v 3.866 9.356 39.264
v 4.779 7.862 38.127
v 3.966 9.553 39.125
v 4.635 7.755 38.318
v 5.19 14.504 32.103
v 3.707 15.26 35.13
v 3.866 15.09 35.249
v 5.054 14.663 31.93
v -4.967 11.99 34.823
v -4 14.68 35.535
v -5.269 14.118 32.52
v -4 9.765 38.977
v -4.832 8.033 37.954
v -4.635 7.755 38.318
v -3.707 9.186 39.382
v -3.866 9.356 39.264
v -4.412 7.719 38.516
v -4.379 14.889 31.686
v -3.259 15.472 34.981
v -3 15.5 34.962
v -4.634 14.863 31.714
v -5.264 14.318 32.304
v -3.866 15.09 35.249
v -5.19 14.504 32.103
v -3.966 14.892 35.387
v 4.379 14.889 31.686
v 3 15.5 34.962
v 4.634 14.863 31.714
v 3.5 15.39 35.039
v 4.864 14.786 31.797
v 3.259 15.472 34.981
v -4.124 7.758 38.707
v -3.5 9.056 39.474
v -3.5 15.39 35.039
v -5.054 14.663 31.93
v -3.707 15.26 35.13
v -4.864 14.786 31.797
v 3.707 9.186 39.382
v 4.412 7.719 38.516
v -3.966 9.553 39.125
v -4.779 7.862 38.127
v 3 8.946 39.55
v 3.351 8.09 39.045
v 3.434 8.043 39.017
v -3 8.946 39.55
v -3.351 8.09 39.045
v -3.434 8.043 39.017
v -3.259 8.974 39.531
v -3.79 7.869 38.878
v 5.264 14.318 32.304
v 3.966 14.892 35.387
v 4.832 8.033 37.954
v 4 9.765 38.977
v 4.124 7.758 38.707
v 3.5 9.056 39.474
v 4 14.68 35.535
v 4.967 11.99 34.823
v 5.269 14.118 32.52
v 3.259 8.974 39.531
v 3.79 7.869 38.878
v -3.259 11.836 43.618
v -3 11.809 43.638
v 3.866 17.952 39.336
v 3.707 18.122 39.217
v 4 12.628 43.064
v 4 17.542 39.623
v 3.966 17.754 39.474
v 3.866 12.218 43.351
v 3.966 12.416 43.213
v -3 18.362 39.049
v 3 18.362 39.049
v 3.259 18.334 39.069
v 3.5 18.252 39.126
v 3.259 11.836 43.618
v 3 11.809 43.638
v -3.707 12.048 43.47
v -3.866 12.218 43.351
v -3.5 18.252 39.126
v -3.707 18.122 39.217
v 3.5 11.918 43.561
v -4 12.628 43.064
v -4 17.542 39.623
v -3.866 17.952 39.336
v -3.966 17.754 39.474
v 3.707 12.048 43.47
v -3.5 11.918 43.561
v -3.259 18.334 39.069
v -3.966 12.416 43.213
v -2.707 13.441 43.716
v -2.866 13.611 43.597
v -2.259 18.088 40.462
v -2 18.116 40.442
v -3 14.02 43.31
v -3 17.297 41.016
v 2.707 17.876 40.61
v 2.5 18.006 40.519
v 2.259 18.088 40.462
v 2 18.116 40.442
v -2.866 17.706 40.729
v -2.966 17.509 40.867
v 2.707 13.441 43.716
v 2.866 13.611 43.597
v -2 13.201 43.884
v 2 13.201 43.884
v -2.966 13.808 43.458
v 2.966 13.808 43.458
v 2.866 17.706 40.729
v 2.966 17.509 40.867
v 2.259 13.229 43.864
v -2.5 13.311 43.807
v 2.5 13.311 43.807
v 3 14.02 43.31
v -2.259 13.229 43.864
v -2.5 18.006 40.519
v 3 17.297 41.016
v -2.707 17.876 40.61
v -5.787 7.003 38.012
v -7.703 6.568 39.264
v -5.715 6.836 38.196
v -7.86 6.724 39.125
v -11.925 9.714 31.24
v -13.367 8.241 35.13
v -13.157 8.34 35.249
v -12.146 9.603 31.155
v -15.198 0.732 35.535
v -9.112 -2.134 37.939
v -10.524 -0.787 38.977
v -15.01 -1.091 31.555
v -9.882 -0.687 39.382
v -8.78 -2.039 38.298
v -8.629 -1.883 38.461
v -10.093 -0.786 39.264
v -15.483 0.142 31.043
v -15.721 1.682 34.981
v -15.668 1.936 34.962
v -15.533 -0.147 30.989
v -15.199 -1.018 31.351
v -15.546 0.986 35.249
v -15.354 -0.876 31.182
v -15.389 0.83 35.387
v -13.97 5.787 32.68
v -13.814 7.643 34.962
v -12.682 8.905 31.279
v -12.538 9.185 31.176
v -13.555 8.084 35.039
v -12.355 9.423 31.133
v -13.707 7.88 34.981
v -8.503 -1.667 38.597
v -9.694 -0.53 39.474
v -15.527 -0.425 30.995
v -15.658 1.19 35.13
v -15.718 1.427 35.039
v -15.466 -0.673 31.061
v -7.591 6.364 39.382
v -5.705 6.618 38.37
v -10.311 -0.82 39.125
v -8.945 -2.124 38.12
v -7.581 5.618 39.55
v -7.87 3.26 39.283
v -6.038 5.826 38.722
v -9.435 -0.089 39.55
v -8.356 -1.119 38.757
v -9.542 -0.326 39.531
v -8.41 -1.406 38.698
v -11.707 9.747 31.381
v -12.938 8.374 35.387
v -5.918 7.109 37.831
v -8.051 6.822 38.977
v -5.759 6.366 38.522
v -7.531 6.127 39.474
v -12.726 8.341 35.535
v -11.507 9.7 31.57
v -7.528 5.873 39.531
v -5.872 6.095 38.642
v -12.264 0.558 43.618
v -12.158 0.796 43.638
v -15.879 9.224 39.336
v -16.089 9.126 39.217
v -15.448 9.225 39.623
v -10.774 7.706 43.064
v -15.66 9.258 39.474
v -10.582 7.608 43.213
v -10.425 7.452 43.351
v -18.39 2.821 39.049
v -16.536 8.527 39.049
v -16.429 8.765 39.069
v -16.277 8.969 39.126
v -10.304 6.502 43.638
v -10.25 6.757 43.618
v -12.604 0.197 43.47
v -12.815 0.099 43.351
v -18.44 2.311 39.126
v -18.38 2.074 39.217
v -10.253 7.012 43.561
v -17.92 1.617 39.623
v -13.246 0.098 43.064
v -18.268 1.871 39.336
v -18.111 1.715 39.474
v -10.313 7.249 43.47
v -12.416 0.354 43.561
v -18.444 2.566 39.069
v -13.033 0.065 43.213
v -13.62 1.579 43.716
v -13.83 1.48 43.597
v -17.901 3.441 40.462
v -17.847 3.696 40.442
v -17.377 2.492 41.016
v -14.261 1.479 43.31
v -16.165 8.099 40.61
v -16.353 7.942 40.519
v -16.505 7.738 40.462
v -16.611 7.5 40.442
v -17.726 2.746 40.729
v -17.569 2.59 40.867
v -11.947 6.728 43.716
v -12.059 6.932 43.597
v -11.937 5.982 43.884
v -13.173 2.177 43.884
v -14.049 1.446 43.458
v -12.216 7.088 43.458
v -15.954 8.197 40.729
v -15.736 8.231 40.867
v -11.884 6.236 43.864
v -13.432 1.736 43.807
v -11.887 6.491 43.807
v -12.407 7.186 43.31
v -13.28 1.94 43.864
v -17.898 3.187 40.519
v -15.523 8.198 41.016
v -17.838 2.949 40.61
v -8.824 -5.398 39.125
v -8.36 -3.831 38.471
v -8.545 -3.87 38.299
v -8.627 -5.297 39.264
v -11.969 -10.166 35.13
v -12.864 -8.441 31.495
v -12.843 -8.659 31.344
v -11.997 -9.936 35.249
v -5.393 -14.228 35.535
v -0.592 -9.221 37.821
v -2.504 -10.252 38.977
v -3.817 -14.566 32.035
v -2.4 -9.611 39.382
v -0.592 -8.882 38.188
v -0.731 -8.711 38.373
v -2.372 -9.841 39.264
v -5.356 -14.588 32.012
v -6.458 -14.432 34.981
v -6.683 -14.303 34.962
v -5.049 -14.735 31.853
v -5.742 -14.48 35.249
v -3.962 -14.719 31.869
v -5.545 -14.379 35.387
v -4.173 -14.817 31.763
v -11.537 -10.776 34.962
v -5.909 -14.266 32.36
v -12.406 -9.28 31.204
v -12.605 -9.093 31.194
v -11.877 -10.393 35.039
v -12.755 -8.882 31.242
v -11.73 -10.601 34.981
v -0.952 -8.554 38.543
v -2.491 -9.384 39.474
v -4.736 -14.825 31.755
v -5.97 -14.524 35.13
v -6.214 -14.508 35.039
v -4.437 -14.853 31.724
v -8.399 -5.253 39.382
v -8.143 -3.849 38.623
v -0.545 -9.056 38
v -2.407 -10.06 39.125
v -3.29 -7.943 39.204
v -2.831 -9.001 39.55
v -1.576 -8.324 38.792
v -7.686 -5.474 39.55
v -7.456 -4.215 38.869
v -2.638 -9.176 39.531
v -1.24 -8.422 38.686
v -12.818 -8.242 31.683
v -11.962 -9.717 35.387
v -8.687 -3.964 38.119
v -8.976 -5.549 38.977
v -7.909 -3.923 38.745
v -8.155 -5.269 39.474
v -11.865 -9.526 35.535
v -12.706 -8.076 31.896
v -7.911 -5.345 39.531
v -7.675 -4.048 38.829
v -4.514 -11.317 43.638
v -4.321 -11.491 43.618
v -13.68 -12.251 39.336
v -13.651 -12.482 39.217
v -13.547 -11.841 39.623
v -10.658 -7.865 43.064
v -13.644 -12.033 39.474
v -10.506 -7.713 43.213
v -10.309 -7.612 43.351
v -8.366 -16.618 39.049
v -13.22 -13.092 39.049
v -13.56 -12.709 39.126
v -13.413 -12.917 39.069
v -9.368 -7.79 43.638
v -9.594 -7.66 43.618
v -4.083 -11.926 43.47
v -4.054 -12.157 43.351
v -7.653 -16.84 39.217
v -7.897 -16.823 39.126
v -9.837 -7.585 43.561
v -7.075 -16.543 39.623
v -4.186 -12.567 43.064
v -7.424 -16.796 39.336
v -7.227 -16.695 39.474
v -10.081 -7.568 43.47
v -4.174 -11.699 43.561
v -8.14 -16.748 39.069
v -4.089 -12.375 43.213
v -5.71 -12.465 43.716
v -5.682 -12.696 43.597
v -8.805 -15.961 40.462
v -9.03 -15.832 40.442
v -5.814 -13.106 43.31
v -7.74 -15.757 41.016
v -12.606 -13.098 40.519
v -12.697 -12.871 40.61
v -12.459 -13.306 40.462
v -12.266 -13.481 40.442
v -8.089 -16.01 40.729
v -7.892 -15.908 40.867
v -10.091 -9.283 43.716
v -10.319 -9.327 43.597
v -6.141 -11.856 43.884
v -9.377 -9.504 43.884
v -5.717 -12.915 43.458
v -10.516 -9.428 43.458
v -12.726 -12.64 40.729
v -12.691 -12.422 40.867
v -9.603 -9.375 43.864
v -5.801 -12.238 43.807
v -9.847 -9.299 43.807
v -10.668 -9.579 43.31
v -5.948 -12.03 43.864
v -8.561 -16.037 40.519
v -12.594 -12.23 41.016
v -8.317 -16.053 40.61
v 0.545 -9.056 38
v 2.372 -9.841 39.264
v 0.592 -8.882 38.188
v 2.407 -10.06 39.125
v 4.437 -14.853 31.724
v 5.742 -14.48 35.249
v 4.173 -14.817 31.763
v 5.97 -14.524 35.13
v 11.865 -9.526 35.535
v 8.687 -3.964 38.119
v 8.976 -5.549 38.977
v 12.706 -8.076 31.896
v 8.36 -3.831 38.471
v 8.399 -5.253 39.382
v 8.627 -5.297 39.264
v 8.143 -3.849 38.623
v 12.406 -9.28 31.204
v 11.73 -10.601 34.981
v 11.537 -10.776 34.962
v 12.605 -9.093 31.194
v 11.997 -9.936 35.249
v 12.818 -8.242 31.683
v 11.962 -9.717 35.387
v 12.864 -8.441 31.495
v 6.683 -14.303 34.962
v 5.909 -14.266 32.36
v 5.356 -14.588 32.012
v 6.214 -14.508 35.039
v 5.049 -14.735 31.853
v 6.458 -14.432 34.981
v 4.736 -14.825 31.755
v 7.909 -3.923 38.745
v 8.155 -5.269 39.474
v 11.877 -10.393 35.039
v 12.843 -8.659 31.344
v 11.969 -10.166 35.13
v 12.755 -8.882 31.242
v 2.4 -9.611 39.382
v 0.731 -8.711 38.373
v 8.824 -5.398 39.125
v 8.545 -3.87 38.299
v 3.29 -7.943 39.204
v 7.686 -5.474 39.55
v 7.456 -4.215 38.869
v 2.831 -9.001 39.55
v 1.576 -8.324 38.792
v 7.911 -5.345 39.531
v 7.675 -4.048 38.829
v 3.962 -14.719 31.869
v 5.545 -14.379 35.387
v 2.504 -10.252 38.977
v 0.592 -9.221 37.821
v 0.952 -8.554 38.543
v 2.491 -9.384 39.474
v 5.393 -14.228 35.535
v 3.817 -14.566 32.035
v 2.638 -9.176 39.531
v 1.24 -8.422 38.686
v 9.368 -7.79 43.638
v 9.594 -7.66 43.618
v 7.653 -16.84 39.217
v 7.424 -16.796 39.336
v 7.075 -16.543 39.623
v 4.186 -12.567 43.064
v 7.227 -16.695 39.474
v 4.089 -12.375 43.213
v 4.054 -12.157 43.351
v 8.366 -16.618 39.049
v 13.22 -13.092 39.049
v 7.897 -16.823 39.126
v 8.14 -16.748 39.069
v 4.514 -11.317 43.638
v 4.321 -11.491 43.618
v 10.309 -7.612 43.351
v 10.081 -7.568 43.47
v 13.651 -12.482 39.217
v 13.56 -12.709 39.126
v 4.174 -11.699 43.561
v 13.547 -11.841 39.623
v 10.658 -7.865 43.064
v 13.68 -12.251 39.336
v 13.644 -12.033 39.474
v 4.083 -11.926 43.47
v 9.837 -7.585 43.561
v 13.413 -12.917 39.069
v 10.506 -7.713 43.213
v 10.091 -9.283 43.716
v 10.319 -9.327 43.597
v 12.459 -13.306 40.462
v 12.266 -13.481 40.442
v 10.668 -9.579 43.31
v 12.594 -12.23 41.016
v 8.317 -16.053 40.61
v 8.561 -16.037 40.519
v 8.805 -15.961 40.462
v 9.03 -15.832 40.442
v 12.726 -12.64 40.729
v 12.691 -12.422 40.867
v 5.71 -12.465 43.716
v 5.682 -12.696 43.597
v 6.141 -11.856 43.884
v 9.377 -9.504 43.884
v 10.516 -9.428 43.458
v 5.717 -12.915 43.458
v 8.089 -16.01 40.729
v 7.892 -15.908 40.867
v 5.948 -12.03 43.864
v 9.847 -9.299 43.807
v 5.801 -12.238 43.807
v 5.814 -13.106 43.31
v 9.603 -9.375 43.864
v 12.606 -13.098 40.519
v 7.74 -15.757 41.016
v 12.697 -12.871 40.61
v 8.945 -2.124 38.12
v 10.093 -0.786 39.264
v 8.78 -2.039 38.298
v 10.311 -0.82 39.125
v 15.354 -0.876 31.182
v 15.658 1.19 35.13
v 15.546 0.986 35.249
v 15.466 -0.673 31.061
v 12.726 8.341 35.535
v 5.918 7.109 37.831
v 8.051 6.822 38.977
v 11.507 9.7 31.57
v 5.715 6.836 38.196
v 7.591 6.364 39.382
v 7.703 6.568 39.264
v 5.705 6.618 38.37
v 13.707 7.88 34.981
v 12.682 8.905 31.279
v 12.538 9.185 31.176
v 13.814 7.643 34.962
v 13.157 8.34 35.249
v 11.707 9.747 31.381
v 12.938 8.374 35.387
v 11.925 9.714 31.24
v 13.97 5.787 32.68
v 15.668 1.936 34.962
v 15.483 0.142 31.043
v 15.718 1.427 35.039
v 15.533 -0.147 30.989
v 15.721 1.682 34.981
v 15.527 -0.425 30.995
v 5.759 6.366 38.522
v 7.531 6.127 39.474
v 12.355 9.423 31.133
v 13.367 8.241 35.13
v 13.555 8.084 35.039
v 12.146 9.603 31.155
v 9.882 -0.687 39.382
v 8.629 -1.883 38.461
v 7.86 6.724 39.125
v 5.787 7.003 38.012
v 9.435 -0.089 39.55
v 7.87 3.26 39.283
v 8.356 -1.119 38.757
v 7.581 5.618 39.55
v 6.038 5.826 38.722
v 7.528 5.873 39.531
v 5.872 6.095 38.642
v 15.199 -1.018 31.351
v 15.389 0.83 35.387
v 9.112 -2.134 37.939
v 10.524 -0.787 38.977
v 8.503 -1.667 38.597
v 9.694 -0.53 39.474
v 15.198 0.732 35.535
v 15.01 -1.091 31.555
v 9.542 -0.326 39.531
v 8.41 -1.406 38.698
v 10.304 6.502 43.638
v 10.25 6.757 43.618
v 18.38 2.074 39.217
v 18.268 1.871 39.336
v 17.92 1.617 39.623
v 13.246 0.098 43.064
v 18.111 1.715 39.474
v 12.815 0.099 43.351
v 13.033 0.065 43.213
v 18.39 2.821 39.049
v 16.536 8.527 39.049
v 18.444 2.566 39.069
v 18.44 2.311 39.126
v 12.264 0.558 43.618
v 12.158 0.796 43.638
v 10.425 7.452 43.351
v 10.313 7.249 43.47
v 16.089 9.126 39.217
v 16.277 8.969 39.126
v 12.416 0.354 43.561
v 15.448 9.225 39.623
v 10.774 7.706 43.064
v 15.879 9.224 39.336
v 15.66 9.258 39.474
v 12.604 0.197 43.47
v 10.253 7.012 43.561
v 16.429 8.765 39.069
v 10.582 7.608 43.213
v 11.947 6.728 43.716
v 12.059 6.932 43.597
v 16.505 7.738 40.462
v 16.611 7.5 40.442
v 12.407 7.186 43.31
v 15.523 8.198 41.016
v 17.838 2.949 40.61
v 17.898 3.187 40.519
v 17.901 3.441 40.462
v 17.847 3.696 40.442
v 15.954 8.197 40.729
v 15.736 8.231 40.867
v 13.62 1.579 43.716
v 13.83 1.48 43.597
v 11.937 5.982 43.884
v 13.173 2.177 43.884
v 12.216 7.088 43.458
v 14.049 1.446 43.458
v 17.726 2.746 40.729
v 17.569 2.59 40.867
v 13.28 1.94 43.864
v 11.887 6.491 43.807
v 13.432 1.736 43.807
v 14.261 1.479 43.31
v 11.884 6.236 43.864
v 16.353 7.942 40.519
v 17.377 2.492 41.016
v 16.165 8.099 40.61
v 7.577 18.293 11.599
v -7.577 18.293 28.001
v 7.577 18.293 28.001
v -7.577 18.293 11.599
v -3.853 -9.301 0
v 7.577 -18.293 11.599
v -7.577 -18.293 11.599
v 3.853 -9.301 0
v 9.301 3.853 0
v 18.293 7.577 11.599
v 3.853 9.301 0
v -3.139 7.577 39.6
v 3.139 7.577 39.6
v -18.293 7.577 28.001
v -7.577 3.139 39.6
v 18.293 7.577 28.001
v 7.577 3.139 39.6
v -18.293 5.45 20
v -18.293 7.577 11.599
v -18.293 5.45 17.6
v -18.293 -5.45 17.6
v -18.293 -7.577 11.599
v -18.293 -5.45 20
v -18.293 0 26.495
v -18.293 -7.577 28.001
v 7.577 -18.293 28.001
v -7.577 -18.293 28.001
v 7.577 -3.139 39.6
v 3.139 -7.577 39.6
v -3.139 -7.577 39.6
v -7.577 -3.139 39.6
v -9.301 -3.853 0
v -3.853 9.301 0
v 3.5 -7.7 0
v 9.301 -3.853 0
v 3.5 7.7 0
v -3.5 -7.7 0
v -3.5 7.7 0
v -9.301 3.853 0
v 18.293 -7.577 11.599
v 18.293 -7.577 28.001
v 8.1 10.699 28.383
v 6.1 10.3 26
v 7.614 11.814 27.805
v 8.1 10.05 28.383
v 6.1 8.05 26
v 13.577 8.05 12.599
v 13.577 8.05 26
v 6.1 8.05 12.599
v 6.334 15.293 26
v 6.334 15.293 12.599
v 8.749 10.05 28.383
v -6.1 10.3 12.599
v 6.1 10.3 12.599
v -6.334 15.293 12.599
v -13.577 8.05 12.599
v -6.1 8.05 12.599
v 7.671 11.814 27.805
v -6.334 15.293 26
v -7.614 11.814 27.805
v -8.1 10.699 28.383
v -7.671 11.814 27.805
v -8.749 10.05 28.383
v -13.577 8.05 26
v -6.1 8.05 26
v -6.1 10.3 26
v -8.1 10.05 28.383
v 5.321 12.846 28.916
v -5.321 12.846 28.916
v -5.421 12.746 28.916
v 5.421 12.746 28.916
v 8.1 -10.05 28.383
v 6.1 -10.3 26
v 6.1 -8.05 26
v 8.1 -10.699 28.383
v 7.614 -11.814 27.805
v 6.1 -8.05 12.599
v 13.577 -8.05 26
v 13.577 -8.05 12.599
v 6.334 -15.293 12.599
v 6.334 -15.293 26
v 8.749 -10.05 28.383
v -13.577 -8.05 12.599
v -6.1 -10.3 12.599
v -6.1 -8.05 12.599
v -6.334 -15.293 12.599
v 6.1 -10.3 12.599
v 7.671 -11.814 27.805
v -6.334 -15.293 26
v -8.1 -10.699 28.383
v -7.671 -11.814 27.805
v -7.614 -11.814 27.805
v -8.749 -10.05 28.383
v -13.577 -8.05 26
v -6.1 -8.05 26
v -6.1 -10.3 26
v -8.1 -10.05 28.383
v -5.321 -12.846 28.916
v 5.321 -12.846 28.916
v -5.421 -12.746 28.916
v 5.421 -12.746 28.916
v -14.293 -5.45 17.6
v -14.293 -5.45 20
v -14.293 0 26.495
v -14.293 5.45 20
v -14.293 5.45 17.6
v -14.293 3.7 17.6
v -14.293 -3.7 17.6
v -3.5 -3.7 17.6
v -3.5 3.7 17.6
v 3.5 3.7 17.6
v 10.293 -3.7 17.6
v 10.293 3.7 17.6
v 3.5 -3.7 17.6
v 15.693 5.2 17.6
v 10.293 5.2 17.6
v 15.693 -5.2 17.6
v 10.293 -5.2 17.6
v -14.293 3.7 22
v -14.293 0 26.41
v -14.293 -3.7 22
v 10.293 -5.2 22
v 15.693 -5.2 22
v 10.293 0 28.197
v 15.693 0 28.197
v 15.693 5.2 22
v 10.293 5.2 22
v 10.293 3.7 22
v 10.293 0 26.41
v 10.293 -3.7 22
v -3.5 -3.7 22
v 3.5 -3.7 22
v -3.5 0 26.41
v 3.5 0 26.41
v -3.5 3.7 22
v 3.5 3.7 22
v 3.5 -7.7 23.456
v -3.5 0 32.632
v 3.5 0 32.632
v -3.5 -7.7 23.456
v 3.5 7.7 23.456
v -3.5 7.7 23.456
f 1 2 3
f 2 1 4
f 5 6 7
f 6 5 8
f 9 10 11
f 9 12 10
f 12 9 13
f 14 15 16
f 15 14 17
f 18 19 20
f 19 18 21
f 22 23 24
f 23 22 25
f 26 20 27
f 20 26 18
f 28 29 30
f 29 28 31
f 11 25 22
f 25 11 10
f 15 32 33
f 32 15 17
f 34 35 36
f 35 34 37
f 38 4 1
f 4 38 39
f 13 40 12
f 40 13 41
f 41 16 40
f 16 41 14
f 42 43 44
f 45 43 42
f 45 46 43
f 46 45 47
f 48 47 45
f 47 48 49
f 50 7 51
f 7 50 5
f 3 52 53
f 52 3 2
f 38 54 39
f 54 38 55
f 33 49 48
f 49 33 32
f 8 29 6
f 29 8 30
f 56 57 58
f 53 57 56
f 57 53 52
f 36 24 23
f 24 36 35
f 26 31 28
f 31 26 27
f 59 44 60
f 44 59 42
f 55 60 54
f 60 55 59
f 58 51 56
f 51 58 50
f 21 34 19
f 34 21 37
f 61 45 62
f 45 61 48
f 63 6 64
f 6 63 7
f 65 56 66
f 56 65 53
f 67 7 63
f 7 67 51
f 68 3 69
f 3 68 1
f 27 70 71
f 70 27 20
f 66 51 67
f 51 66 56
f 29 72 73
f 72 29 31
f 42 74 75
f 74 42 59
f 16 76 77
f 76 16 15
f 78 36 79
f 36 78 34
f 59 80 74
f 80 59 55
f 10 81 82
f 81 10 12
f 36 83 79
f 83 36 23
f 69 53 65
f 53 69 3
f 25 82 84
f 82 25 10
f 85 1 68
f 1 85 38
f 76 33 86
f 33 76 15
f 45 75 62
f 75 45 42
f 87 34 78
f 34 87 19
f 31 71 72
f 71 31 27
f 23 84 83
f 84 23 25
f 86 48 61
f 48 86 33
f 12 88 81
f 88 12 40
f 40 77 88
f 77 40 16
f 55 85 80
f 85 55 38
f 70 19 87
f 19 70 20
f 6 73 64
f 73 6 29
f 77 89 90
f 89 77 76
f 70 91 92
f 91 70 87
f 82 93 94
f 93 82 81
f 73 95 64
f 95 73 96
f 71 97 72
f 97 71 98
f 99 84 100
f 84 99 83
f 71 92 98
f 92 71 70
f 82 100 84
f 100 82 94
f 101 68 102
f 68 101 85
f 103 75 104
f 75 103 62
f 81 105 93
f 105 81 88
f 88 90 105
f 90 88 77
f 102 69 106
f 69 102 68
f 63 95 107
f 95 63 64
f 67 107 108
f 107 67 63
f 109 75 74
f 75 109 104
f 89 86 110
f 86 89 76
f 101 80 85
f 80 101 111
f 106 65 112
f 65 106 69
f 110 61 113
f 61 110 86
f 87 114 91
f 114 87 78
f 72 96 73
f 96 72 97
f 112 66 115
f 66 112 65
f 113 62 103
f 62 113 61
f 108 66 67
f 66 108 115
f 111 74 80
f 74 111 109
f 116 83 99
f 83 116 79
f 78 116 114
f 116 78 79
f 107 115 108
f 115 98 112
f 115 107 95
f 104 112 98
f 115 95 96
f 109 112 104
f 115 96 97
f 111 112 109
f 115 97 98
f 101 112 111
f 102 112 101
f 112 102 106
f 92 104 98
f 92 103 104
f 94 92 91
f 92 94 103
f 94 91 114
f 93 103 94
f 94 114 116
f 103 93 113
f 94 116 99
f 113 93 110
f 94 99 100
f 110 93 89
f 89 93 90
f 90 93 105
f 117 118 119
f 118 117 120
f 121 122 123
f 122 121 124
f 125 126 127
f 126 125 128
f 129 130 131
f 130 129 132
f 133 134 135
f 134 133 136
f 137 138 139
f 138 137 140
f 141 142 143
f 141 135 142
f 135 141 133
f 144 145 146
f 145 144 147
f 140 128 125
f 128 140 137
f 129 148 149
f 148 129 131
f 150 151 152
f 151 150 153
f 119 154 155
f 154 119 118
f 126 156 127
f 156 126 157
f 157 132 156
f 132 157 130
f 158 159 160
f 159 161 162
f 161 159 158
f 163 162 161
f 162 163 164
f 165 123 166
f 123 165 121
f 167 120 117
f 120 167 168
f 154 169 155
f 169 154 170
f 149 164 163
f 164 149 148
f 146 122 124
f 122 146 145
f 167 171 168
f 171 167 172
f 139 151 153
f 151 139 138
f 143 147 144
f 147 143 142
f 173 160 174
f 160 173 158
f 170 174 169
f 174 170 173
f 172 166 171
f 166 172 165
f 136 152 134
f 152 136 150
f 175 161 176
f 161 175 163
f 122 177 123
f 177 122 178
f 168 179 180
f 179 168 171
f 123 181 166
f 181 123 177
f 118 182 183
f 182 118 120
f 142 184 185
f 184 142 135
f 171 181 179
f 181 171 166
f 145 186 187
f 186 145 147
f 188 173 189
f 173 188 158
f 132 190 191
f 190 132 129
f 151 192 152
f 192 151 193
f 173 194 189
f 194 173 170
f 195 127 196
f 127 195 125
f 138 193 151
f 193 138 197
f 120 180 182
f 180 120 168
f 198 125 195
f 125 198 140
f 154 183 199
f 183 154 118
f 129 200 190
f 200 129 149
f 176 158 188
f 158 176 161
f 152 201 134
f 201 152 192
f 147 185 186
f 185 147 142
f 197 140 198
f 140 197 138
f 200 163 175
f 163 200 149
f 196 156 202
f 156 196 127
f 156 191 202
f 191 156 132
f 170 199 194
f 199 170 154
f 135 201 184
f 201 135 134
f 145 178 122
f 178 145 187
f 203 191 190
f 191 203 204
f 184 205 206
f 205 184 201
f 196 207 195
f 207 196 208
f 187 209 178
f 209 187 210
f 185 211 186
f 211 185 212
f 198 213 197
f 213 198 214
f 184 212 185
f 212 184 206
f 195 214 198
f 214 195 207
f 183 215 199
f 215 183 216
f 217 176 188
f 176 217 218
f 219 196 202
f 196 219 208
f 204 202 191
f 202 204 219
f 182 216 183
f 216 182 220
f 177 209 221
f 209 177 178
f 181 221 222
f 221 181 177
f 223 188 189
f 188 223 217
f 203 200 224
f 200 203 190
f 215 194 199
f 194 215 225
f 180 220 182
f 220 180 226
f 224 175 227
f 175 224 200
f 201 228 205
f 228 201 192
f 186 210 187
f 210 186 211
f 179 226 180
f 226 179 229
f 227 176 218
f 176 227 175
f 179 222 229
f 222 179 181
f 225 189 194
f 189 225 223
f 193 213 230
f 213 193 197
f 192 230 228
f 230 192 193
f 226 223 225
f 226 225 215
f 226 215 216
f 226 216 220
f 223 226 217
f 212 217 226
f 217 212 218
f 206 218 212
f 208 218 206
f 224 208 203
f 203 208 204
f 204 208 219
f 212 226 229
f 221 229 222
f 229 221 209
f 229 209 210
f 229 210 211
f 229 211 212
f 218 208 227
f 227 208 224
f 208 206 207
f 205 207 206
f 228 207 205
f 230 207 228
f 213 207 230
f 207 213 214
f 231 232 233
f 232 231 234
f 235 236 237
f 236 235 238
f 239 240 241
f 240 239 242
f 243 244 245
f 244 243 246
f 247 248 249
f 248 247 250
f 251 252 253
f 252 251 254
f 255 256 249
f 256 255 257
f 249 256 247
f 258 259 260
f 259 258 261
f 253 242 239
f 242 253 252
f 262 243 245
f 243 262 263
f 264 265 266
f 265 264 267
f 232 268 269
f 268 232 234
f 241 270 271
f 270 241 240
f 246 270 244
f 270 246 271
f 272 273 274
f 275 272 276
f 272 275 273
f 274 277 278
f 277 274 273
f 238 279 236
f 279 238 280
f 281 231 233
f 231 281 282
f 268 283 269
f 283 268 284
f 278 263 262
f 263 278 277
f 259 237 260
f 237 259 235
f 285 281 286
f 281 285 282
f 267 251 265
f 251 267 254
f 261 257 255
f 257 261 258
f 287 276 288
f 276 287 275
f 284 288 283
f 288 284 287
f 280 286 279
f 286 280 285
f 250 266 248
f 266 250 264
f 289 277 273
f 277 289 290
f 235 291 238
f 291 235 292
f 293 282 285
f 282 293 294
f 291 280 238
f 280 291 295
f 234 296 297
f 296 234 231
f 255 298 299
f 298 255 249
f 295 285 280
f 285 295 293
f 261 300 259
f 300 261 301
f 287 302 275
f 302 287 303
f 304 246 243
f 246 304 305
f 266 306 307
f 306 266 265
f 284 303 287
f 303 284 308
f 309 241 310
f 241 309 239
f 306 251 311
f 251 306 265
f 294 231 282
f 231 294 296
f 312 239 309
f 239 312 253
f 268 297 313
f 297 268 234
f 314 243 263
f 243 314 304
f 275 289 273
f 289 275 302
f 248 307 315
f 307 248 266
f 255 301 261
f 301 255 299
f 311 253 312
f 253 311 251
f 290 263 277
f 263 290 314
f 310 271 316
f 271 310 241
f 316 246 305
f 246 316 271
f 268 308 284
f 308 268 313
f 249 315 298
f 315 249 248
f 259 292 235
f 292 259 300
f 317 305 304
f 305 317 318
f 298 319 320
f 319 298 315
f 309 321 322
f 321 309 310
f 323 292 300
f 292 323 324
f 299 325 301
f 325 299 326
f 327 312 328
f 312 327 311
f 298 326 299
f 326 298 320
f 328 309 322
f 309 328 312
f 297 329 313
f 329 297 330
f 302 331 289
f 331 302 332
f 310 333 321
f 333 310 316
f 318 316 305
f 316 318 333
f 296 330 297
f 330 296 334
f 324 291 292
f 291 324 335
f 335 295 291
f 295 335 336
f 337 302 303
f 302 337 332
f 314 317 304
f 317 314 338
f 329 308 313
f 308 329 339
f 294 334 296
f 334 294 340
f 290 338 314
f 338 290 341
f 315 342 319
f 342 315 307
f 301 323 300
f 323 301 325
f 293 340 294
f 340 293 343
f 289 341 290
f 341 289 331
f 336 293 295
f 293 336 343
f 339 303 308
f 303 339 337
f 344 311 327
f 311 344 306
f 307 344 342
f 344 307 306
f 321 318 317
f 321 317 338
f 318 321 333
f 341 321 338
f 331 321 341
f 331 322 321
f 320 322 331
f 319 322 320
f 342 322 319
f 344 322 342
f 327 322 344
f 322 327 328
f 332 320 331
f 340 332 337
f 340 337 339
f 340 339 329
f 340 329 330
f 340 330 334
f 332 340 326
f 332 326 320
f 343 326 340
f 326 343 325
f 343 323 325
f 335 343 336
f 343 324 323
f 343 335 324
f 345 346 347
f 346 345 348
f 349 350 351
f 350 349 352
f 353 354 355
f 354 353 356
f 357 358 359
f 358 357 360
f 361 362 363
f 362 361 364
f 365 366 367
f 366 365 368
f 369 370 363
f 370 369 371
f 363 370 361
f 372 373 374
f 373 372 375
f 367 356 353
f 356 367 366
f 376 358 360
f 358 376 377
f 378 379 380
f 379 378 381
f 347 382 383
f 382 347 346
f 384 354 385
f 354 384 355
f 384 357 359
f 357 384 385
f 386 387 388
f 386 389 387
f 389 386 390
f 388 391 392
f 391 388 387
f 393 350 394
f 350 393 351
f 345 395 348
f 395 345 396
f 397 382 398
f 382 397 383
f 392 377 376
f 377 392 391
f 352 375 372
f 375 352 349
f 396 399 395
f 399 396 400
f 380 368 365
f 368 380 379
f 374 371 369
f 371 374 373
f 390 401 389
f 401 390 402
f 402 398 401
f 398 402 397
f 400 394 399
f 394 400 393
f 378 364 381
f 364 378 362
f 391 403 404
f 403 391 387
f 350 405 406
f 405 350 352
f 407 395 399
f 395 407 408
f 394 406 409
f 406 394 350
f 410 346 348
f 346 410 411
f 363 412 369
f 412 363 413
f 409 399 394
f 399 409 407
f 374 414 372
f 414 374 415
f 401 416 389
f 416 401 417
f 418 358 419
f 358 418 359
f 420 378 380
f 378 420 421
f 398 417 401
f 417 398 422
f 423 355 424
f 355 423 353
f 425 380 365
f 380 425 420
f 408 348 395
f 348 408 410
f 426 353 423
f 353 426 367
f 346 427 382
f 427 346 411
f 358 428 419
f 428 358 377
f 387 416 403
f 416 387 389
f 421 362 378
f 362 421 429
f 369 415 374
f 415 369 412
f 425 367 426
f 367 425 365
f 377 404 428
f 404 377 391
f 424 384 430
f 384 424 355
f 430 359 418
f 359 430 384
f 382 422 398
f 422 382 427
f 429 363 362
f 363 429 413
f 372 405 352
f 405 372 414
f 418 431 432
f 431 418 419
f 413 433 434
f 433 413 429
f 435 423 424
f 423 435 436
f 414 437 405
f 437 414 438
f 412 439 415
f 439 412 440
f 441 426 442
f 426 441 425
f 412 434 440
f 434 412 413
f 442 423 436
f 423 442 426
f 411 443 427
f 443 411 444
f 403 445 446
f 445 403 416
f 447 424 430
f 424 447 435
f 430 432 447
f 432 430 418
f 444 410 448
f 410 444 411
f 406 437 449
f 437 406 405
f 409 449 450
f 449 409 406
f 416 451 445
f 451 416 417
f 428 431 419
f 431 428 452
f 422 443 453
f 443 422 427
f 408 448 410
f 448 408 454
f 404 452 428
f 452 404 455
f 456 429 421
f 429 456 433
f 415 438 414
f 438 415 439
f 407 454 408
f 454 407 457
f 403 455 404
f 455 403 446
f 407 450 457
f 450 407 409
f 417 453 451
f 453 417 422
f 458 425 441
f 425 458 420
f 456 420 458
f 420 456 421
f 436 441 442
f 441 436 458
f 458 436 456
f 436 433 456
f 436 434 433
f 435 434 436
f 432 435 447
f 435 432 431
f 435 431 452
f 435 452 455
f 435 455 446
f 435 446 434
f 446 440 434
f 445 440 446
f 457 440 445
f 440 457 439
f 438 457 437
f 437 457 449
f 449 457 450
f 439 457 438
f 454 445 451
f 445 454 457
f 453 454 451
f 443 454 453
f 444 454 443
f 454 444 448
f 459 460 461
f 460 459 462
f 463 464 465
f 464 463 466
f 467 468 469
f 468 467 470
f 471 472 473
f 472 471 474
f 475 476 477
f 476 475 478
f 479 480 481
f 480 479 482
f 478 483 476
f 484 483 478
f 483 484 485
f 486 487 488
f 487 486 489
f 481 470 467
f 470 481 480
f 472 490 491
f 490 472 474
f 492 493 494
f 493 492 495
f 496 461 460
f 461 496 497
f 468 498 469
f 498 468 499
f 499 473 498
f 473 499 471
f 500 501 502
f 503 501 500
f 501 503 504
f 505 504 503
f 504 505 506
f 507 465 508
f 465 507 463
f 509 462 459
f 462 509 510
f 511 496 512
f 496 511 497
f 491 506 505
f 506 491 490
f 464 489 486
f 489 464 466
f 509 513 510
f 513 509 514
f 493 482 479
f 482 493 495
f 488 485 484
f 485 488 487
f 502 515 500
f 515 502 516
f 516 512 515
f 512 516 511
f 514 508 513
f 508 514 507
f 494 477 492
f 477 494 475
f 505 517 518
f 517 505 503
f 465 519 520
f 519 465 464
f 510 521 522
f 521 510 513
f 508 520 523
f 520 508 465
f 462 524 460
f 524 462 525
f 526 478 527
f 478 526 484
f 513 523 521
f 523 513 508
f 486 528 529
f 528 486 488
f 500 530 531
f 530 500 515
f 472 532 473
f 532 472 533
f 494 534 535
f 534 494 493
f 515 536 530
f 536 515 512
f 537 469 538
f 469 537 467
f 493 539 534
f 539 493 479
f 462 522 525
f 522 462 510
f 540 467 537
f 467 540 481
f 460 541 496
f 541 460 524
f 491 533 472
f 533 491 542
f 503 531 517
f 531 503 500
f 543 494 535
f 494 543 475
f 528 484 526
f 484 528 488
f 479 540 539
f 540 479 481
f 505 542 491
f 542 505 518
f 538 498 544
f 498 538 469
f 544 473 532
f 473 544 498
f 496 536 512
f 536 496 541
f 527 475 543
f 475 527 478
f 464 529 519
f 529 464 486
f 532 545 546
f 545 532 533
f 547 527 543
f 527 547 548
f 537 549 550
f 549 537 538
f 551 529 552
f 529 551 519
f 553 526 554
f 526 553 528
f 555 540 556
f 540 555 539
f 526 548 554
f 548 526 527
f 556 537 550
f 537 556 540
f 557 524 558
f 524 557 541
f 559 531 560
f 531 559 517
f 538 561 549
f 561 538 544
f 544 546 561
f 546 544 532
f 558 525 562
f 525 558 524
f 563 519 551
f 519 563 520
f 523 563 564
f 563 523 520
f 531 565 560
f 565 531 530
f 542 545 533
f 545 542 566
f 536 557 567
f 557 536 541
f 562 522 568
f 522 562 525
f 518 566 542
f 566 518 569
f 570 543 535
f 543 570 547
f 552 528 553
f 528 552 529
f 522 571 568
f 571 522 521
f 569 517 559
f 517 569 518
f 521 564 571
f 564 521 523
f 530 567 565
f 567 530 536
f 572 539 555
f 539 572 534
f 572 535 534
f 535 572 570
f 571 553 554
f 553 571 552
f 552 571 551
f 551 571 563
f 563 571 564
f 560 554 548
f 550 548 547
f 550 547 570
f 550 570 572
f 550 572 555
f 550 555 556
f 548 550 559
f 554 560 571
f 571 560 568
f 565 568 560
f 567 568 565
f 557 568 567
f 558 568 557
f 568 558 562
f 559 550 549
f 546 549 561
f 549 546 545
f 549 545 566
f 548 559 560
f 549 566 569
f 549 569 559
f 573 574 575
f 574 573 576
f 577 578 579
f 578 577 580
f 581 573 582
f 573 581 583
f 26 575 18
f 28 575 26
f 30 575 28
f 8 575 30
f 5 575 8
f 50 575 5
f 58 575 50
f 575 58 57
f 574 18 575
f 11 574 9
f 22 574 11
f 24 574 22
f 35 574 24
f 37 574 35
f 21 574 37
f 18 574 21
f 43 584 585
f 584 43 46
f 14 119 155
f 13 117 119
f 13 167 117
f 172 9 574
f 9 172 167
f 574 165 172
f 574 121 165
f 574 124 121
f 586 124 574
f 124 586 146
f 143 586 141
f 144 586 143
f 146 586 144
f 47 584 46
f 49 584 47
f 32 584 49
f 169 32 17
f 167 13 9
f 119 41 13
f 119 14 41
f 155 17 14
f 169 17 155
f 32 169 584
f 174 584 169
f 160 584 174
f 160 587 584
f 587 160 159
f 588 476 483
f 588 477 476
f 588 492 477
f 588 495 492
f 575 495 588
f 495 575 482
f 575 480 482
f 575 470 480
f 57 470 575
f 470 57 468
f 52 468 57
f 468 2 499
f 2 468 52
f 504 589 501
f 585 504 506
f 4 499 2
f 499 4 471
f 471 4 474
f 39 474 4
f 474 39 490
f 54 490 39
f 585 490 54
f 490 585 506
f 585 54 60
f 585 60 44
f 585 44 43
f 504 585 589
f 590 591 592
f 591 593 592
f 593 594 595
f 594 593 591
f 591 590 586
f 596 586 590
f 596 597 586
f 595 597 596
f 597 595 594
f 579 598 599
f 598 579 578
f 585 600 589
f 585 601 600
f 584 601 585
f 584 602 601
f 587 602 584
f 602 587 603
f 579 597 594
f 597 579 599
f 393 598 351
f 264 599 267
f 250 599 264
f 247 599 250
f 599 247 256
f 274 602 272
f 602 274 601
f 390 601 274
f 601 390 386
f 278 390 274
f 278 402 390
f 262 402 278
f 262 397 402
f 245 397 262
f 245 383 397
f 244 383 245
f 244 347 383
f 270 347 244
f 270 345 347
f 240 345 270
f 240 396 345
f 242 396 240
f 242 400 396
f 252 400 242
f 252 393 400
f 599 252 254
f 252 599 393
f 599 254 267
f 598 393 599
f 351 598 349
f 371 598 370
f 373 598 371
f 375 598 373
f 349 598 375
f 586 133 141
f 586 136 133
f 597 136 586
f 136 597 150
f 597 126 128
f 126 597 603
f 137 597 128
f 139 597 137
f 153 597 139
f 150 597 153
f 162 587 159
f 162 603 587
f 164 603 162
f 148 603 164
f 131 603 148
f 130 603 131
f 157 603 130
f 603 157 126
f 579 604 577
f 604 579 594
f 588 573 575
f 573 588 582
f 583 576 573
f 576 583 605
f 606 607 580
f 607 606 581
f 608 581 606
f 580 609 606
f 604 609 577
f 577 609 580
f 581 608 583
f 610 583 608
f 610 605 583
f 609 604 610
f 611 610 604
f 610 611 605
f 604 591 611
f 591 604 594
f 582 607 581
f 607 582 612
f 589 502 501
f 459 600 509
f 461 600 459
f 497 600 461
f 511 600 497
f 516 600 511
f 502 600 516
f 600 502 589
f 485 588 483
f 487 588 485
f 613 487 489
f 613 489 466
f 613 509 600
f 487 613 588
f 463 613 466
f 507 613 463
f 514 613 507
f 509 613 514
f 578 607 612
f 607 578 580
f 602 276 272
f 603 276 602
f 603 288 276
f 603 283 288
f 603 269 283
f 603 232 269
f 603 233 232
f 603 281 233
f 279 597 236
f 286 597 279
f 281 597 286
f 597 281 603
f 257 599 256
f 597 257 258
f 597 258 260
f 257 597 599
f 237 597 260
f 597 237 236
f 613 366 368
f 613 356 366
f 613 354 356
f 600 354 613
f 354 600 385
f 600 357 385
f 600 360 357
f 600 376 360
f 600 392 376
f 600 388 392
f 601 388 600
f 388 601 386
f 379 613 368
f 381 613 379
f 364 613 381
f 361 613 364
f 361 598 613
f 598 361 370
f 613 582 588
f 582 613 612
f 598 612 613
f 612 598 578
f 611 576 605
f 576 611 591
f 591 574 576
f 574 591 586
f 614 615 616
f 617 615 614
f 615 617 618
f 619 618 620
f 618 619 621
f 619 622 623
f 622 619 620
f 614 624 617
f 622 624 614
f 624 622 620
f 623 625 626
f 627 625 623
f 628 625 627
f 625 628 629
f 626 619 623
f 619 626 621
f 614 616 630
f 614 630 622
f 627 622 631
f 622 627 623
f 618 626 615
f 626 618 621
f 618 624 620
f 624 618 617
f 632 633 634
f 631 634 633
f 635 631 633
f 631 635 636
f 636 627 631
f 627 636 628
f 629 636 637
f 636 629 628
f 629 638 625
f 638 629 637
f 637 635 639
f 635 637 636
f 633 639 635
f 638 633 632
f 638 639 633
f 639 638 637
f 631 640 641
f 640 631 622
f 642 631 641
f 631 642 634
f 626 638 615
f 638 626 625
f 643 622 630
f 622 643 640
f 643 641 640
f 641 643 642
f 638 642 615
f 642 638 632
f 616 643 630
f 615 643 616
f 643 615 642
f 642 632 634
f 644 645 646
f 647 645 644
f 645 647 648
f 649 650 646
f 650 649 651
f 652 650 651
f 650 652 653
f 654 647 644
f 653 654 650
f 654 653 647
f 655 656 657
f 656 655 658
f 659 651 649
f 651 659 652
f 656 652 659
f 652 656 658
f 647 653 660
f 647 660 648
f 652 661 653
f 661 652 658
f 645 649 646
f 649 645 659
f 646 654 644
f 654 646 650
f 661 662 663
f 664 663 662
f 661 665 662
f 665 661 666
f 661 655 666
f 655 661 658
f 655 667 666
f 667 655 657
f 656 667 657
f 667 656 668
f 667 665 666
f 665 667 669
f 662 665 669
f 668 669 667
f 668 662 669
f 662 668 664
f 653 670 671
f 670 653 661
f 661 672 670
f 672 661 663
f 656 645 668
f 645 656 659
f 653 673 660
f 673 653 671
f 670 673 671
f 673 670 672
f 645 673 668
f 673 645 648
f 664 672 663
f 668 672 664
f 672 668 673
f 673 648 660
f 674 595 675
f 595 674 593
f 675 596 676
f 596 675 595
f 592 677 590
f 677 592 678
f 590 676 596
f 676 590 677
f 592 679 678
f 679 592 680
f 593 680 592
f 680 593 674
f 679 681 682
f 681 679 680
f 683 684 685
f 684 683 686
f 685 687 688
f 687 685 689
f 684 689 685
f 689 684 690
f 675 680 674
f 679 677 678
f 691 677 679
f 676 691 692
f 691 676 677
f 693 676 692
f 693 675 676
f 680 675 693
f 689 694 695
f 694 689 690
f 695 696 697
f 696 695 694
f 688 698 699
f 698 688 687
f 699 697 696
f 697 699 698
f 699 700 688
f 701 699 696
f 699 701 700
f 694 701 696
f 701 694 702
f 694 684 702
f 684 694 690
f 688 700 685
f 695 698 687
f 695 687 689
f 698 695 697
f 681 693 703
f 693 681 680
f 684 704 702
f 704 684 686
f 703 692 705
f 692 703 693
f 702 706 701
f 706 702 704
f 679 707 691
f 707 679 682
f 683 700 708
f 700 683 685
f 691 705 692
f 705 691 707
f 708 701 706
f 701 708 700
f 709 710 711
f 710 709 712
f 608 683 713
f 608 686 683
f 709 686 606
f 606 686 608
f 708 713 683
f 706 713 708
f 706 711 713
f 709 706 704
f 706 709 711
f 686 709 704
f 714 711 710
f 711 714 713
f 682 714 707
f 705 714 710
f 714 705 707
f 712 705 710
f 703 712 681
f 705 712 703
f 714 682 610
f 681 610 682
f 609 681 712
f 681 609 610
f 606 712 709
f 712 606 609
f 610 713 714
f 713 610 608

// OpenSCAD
// Faceted sea-mine with lead pockets (print PAUSE at lead_pause, fill, resume; Russ): generated from chain_shot_ball.scad, edit that file.
// Chain-shot ball: one of two identical solid PCTG balls joined by steel
// cable (recommended) or chain. Fired one behind the other with the cable
// folded between them; in flight they spread and spin around each other.
//
// Shape: as round as a one-piece, support-free print allows. A 39.6 mm sphere
// whose only non-round spot is a small flat on the bottom (with a short 47 deg
// cone), where the cable leaves. Optional sea-mine horns (set horns = true).
//
// Cable/chain anchor: a thick snap-in cross pin with a channel around it.
//   - Pin first: push it in through the side hole marked by the wide
//     counterbore (the "head" side) until its split end snaps into the pocket
//     on the far side. It takes a firm push.
//   - Then the cable: push one end up the channel from the bottom flat on one
//     side of the pin. The peaked ceiling steers it over the top of the pin
//     and back down the other side and out the bottom. Pull it through and
//     crimp a loop (or join the two ends) outside the ball.
//   - Locked both ways: the head stops the pin going further in; two hooks on
//     the split end catch a square ledge so it can't back out.
//   - To remove: squeeze the two hooks together through the wide far-side
//     opening (pliers or fingertips) and push the pin back out the head side.
//   - The cable's pull presses the pin down onto solid plastic (compression).
// Pin and hole have a "house" profile (flat floor, straight sides, 50 deg
// roof): the hole prints with no support, the pin prints lying on its floor,
// and it can't spin.
//
// Cable: 1/8 in. 7x19 galvanized or stainless wire rope (about 1,700-2,000 lb
// breaking strength), stronger than the printed pin, so the cable is not the
// weak link. The channel leaves 4 mm around the pin for it (1/16 or 3/32 in.
// cable also fits). Chain: a link wire up to ~3.5 mm thick fits the channel,
// but a chain can't be threaded around an installed pin: open the end link or
// use a quick link through the channel instead.
//
// Print: ball flat side down, 100% infill. Pin flat side down, 100% infill,
// 5+ walls. Supports off.

$fn = 160;

part        = "ball";   // "ball", "pin", or "both"
shape       = "ball";   // "ball" (round) or "slug" (39.6 x 39.6 mm cylinder: no overhangs, ~70% heavier)
slug_round  = 2.0;      // slug: rounded top edge
horns       = true;     // true = sea-mine version with thick horns on the upper half
faceted     = true;     // true = 8-sided body (octagon from above and from the side) and square horns (Russ:
                        // round shapes print jagged and stringy on his printer; flat faces print clean)
lead        = true;     // faceted only: two sealed side pockets for lead shot, filled during a print PAUSE (Russ)
lead_wall   = 3.0;      // plastic around the pockets
lead_pause  = 26.0;     // PAUSE here: pockets are open up to this height; their 50 deg roofs print after
horn_n      = 5;
horn_elev   = 55;       // ring horns point this far above level (>= 45 to print unsupported)
horn_d      = 8.0;
horn_out    = 7.5;      // ring horns stick out this far (kept inside the 39.6 mm width)
top_horn    = 9.0;

max_width   = 39.6;
ball_d      = 39.6;     // Russ: 39.6 for everything (barrel ~40.1 mm)
cone_a      = 47;       // underside slope from horizontal
// cable channel: up from the bottom flat, with room for the cable to run up
// one side of the installed pin, over its peaked top and down the other side
cable_gap   = 4.0;      // room for the cable each side of / above the pin (1/8 in. cable = 3.2 mm)
chan_t      = 7.0;      // channel thickness (along the pin)
release_w   = 16.0;     // width of the far-side opening where you pinch the hooks (pliers room)

// snap pin
pin_w       = 7.0;      // pin width (thick)
pin_side    = 4.0;      // height of the pin's straight sides (roof adds pin_w/2*tan(50))
head_w      = 10.5;     // head at the entry end
head_len    = 4.0;      // head length (sits in the entry counterbore)
barb        = 1.3;      // how far each hook sticks out (snap engagement; rev 3: was 1.0, Russ saw wear)
prong_len   = 13.0;     // springy prong length (longer = easier flex, less strain)
slot_w      = 2 * barb + 0.4;   // gap between the prongs so they can close fully
clr         = 0.2;      // pin-to-hole clearance
hook_flat   = 2.4;      // length of each hook's full-height catch (rev 3: was 1.6)
horn_r      = 1.0;      // faceted horns: long edges rounded, ends bevelled (fewer chips on rocks)
pin_round   = 2.0;      // pin's peak and roof corners rounded (Russ: sharp edges can cut Kevlar line)
// Faceted mine (flush, Russ): the pin goes in from ONE side only (-X). Its head fills a pocket
// its own size, flush with that flat face. The hooks snap into a hidden pocket inside the far
// side, so there's no hole there either. The pin is permanent; the cable still threads around it.
flush       = faceted;

assert(ball_d <= max_width, "ball_d exceeds max_width");
R  = ball_d / 2;
Rf = faceted ? R * cos(22.5) : R;      // distance to the flats on +/-X (pin ends stay inside)
zc = R;
zt = zc - R * cos(cone_a);
rt = R * sin(cone_a);
rb = rt - zt / tan(cone_a);
T50 = tan(50);

// x positions along the pin axis (ball centre = 0); head on -X, prongs on +X
chan_w    = pin_w + 2 * clr + 2 * cable_gap;   // channel width across the pin (15.4 mm)
x_head_in = flush ? -Rf + head_len : -Rf + head_len + 1.5;   // inner face of the head = counterbore shoulder
x_ledge   = flush ? Rf - 8.0 : Rf - 6.0;                    // square ledge the hooks catch on
x_tip     = flush ? Rf - 3.0 : faceted ? Rf - 0.3 : sqrt(R * R - pow(pin_w / 2 + barb, 2)) - 0.3;   // pin end, inside the ball surface
floor_z   = -pin_side / 2;              // pin floor, relative to the ball centre
pocket_w  = pin_w + 2 * barb + 0.8;     // hidden hook pocket (flush style): hooks spring out into it
head_side = 2.0;                        // flush head (rev 5, Russ: the tall peaked head notched the face's top edge):
                                        // wide (head_w) only up to this height, then no taller than the pin body
module head_shape(g = 0) {              // flush head profile, grown by g (pocket) or not (pin)
    union() {
        house(pin_w + 2 * g, pin_side + 2 * g, floor_z - g);
        house(head_w + 2 * g, head_side + 2 * g, floor_z - g);
    }
}
x_pocket  = Rf - 2.6;                   // its far end: 2.6 mm of wall left under the flat face

module house(w, h, fl = floor_z) {      // flat floor, straight sides, 50 deg peaked roof
    polygon([[-w / 2, fl], [w / 2, fl], [w / 2, fl + h], [0, fl + h + w / 2 * T50], [-w / 2, fl + h]]);
}
module house_round(w, h) {             // the pin's profile: square floor corners, rounded roof and peak
    union() {
        offset(r = pin_round) offset(delta = -pin_round) house(w, h);
        translate([-w / 2, floor_z]) square([w, pin_round]);
    }
}
module along_x(x0, x1) {                // extrude a profile (y, z) along X from x0 to x1
    translate([x0, 0, 0]) rotate([90, 0, 90]) linear_extrude(height = x1 - x0) children();
}

module ball_shape() {
    if (shape == "slug") {
        // straight walls and a flat top: nothing overhangs, so it prints clean
        rotate_extrude() hull() {
            square([R, 0.01]);
            square([0.01, ball_d]);
            translate([R - slug_round, ball_d - slug_round]) circle(r = slug_round, $fn = 48);
            translate([R - 0.01, 0]) square([0.01, ball_d - slug_round]);
        }
    } else if (faceted) {
        // side view: an octagon with a flat bottom (cable exit) and flat top; underside 50 deg
        fb = R * tan(22.5);                    // half the vertical band = octagon side / 2
        r_bot = R - (zc - fb) / tan(50);       // bottom flat radius
        rotate([0, 0, 22.5]) rotate_extrude($fn = 8)
            polygon([[0, 0], [r_bot, 0], [R, zc - fb], [R, zc + fb], [R - (R - fb), 2 * R], [0, 2 * R]]);
    } else intersection() {
        translate([0, 0, zc]) sphere(r = R);
        translate([0, 0, zt]) cylinder(h = 2 * R, r = R + 1);
    }
    if (shape != "slug" && !faceted) cylinder(h = zt + 0.6, r1 = rb, r2 = rb + (zt + 0.6) / tan(cone_a));
}

module rsq(w) { offset(r = horn_r, $fn = 24) square(w - 2 * horn_r, center = true); }   // square with rounded corners
module horn(len) {
    if (faceted) translate([0, 0, R - 4]) {
        // square horn: flared square base, straight square post, flat square end
        hull() { linear_extrude(0.01) rsq(horn_d + 5);
                 translate([0, 0, 5.5]) linear_extrude(0.01) rsq(horn_d); }
        linear_extrude(len + 3) rsq(horn_d);
        hull() { translate([0, 0, len + 3 - 0.01]) linear_extrude(0.01) rsq(horn_d);
                 translate([0, 0, len + 4 - 0.01]) linear_extrude(0.01) rsq(horn_d - 2); }   // 45 deg bevel at the end
    } else translate([0, 0, R - 2]) {
        cylinder(h = 3.5, d1 = horn_d + 5, d2 = horn_d);
        cylinder(h = len + 2 - horn_d / 2, d = horn_d);
        translate([0, 0, len + 2 - horn_d / 2]) sphere(d = horn_d);
    }
}
module horns_all() {
    translate([0, 0, zc]) {
        // ring rotated so no horn sits over the pin's side openings (+/-X)
        for (i = [0 : horn_n - 1])
            rotate([0, 0, 360 * i / horn_n + 90]) rotate([0, 90 - horn_elev, 0]) horn(horn_out);
        if (!faceted) horn(top_horn);   // faceted mines: no top horn (Russ)
    }
}

// lead pockets: one each side of the pin/cable slab (+/-Y), symmetric so the CG stays centred.
// Each is one convex hull: a thin start low in the chamfer, full width through the band,
// open top at lead_pause, then a 50 deg roof that closes after the pause.
lp_y0 = (flush ? max(pin_w + 2 * cable_gap + 2 * clr, head_w + 2 * clr, pocket_w) : release_w) / 2 + 2.6;   // 2.6 mm past the cable channel / openings
// Pockets are unions of convex pieces, each with its own 50 deg roof (a union adds no new
// overhangs). Piece 1 spans the middle beside the cable channel; pieces 2 and 3 (flush style)
// reach further in toward the pin near each end, where the channel isn't.
lp_y1 = (flush ? max(head_w + 2 * clr, pocket_w) : release_w) / 2 + 2.6;   // past the head pocket / hook pocket
lp_x1 = chan_t / 2 + 2.6;                                                   // past the cable channel
module lead_sec(a, y0, xa, xb) {       // octagon of apothem a (flats on X and Y), part with y >= y0, xa <= x <= xb
    intersection() {
        rotate([0, 0, 22.5]) circle(r = a / cos(22.5), $fn = 8);
        translate([xa, y0]) square([xb - xa, 50]);
    }
}
module lead_piece(y0, xa, xb, d) {   // d: how far the 50 deg roof closes in (under the piece's inradius)
    a_band = R * cos(22.5) - lead_wall;            // inner flat distance in the straight band
    fb = R * tan(22.5);
    z_band = zc - fb;                              // bottom of the straight band
    hull() {
        // flat floor 1 mm above the top of the sloped underside (rev 4, Russ: a thin wall leaning out
        // over the pocket softened and curled while printing), so the overhanging part is solid
        translate([0, 0, z_band + 1.0]) linear_extrude(lead_pause - z_band - 1.0) lead_sec(a_band, y0, xa, xb);
        translate([0, 0, lead_pause + d * tan(50) - 0.01]) linear_extrude(0.01) offset(delta = -d) lead_sec(a_band, y0, xa, xb);
    }
}
module lead_pocket() {
    lead_piece(lp_y0, -50, 50, (R * cos(22.5) - lead_wall - lp_y0) / 2 - 0.05);
    if (flush) { lead_piece(lp_y1, lp_x1, 50, 2.0); lead_piece(lp_y1, -50, -lp_x1, 2.0); }
}

module ball() {
    roof_top = floor_z + pin_side + pin_w / 2 * T50;
    difference() {
        union() { ball_shape(); if (horns) horns_all(); }
        if (faceted && lead) for (s = [0, 1]) mirror([0, s, 0]) lead_pocket();
        // cable channel: the pin's own house shape grown by cable_gap all
        // round, so the ceiling runs parallel to the pin's 50 deg roof and
        // steers a cable pushed up one side over the top and down the other.
        // Open at the bottom flat; walls vertical, ceiling 50 deg (no supports).
        translate([0, 0, zc]) {
            pin_peak = floor_z - clr + pin_side + 2 * clr + (pin_w / 2 + clr) * T50;
            ch_peak  = pin_peak + cable_gap / cos(50);
            ch_side  = ch_peak - chan_w / 2 * T50;
            translate([-chan_t / 2, 0, 0]) rotate([90, 0, 90]) linear_extrude(height = chan_t)
                polygon([[-chan_w / 2, -zc - 1], [chan_w / 2, -zc - 1], [chan_w / 2, ch_side],
                         [0, ch_peak], [-chan_w / 2, ch_side]]);
        }
        translate([0, 0, zc]) {
            // pin hole through the middle
            along_x(x_head_in - 0.01, x_ledge + 0.01) house(pin_w + 2 * clr, pin_side + 2 * clr, floor_z - clr);
            if (flush) {
                // head pocket: exactly the head's size, so the head ends flush with the flat face
                along_x(-R - 2, x_head_in) head_shape(clr);
                // hidden hook pocket inside the far side (no hole to the outside)
                along_x(x_ledge, x_pocket) house(pocket_w, pin_side + 2 * clr, floor_z - clr);
            } else {
            // entry opening for the head: as wide as the release opening on the
            // far side, so the ball stays balanced (the pin body centres the head)
            along_x(-R - 2, x_head_in) house(release_w, pin_side + 2 * clr, floor_z - clr);
            // exit pocket the hooks spring into, open to the surface and wide
            // enough to get pliers (or fingertips) on both hooks
            along_x(x_ledge, R + 2) house(release_w, pin_side + 2 * clr, floor_z - clr);
            }
        }
    }
}

module pin_raw() {
    difference() {
        union() {
            along_x(x_head_in - 0.15, x_tip) house_round(pin_w, pin_side);      // body (rounded roof: kind to the cable)
            if (flush) along_x(-Rf + 0.1, x_head_in - 0.15) head_shape(0);          // low flush head
            else along_x(-R, x_head_in - 0.15) house(head_w, pin_side);             // head (0.15 short of its shoulder)
            // hooks: square catch face just past the ledge, then a lead-in taper to the tip
            for (s = [-1, 1]) mirror([0, s < 0 ? 1 : 0, 0])
                translate([0, 0, floor_z]) linear_extrude(height = pin_side)
                    polygon([[x_ledge + 0.25, pin_w / 2 - 0.01], [x_ledge + 0.25, pin_w / 2 + barb],
                             [x_ledge + hook_flat, pin_w / 2 + barb], [x_tip, pin_w / 2 + 0.05], [x_tip, pin_w / 2 - 0.01]]);
        }
        // split the end into two springy prongs
        translate([x_tip - prong_len, -slot_w / 2, floor_z - 1]) cube([prong_len + 1, slot_w, 30]);
    }
}
module pin() {
    // ends trimmed flush to the outside: a sphere for the ball, a cylinder for the slug
    intersection() {
        pin_raw();
        if (shape == "slug") translate([0, 0, -R]) cylinder(h = ball_d, r = R - 0.15);
        else if (faceted) translate([-Rf + 0.15, -R, -R]) cube([2 * Rf - 0.3, 2 * R, 2 * R]);
        else sphere(r = R - 0.15);
    }
}

if (part == "ball") ball();
else if (part == "pin") translate([0, 0, -floor_z]) pin();
else if (part == "pinplaced") translate([0, 0, zc]) pin();
else { ball(); translate([0, 32, -floor_z]) pin(); }
